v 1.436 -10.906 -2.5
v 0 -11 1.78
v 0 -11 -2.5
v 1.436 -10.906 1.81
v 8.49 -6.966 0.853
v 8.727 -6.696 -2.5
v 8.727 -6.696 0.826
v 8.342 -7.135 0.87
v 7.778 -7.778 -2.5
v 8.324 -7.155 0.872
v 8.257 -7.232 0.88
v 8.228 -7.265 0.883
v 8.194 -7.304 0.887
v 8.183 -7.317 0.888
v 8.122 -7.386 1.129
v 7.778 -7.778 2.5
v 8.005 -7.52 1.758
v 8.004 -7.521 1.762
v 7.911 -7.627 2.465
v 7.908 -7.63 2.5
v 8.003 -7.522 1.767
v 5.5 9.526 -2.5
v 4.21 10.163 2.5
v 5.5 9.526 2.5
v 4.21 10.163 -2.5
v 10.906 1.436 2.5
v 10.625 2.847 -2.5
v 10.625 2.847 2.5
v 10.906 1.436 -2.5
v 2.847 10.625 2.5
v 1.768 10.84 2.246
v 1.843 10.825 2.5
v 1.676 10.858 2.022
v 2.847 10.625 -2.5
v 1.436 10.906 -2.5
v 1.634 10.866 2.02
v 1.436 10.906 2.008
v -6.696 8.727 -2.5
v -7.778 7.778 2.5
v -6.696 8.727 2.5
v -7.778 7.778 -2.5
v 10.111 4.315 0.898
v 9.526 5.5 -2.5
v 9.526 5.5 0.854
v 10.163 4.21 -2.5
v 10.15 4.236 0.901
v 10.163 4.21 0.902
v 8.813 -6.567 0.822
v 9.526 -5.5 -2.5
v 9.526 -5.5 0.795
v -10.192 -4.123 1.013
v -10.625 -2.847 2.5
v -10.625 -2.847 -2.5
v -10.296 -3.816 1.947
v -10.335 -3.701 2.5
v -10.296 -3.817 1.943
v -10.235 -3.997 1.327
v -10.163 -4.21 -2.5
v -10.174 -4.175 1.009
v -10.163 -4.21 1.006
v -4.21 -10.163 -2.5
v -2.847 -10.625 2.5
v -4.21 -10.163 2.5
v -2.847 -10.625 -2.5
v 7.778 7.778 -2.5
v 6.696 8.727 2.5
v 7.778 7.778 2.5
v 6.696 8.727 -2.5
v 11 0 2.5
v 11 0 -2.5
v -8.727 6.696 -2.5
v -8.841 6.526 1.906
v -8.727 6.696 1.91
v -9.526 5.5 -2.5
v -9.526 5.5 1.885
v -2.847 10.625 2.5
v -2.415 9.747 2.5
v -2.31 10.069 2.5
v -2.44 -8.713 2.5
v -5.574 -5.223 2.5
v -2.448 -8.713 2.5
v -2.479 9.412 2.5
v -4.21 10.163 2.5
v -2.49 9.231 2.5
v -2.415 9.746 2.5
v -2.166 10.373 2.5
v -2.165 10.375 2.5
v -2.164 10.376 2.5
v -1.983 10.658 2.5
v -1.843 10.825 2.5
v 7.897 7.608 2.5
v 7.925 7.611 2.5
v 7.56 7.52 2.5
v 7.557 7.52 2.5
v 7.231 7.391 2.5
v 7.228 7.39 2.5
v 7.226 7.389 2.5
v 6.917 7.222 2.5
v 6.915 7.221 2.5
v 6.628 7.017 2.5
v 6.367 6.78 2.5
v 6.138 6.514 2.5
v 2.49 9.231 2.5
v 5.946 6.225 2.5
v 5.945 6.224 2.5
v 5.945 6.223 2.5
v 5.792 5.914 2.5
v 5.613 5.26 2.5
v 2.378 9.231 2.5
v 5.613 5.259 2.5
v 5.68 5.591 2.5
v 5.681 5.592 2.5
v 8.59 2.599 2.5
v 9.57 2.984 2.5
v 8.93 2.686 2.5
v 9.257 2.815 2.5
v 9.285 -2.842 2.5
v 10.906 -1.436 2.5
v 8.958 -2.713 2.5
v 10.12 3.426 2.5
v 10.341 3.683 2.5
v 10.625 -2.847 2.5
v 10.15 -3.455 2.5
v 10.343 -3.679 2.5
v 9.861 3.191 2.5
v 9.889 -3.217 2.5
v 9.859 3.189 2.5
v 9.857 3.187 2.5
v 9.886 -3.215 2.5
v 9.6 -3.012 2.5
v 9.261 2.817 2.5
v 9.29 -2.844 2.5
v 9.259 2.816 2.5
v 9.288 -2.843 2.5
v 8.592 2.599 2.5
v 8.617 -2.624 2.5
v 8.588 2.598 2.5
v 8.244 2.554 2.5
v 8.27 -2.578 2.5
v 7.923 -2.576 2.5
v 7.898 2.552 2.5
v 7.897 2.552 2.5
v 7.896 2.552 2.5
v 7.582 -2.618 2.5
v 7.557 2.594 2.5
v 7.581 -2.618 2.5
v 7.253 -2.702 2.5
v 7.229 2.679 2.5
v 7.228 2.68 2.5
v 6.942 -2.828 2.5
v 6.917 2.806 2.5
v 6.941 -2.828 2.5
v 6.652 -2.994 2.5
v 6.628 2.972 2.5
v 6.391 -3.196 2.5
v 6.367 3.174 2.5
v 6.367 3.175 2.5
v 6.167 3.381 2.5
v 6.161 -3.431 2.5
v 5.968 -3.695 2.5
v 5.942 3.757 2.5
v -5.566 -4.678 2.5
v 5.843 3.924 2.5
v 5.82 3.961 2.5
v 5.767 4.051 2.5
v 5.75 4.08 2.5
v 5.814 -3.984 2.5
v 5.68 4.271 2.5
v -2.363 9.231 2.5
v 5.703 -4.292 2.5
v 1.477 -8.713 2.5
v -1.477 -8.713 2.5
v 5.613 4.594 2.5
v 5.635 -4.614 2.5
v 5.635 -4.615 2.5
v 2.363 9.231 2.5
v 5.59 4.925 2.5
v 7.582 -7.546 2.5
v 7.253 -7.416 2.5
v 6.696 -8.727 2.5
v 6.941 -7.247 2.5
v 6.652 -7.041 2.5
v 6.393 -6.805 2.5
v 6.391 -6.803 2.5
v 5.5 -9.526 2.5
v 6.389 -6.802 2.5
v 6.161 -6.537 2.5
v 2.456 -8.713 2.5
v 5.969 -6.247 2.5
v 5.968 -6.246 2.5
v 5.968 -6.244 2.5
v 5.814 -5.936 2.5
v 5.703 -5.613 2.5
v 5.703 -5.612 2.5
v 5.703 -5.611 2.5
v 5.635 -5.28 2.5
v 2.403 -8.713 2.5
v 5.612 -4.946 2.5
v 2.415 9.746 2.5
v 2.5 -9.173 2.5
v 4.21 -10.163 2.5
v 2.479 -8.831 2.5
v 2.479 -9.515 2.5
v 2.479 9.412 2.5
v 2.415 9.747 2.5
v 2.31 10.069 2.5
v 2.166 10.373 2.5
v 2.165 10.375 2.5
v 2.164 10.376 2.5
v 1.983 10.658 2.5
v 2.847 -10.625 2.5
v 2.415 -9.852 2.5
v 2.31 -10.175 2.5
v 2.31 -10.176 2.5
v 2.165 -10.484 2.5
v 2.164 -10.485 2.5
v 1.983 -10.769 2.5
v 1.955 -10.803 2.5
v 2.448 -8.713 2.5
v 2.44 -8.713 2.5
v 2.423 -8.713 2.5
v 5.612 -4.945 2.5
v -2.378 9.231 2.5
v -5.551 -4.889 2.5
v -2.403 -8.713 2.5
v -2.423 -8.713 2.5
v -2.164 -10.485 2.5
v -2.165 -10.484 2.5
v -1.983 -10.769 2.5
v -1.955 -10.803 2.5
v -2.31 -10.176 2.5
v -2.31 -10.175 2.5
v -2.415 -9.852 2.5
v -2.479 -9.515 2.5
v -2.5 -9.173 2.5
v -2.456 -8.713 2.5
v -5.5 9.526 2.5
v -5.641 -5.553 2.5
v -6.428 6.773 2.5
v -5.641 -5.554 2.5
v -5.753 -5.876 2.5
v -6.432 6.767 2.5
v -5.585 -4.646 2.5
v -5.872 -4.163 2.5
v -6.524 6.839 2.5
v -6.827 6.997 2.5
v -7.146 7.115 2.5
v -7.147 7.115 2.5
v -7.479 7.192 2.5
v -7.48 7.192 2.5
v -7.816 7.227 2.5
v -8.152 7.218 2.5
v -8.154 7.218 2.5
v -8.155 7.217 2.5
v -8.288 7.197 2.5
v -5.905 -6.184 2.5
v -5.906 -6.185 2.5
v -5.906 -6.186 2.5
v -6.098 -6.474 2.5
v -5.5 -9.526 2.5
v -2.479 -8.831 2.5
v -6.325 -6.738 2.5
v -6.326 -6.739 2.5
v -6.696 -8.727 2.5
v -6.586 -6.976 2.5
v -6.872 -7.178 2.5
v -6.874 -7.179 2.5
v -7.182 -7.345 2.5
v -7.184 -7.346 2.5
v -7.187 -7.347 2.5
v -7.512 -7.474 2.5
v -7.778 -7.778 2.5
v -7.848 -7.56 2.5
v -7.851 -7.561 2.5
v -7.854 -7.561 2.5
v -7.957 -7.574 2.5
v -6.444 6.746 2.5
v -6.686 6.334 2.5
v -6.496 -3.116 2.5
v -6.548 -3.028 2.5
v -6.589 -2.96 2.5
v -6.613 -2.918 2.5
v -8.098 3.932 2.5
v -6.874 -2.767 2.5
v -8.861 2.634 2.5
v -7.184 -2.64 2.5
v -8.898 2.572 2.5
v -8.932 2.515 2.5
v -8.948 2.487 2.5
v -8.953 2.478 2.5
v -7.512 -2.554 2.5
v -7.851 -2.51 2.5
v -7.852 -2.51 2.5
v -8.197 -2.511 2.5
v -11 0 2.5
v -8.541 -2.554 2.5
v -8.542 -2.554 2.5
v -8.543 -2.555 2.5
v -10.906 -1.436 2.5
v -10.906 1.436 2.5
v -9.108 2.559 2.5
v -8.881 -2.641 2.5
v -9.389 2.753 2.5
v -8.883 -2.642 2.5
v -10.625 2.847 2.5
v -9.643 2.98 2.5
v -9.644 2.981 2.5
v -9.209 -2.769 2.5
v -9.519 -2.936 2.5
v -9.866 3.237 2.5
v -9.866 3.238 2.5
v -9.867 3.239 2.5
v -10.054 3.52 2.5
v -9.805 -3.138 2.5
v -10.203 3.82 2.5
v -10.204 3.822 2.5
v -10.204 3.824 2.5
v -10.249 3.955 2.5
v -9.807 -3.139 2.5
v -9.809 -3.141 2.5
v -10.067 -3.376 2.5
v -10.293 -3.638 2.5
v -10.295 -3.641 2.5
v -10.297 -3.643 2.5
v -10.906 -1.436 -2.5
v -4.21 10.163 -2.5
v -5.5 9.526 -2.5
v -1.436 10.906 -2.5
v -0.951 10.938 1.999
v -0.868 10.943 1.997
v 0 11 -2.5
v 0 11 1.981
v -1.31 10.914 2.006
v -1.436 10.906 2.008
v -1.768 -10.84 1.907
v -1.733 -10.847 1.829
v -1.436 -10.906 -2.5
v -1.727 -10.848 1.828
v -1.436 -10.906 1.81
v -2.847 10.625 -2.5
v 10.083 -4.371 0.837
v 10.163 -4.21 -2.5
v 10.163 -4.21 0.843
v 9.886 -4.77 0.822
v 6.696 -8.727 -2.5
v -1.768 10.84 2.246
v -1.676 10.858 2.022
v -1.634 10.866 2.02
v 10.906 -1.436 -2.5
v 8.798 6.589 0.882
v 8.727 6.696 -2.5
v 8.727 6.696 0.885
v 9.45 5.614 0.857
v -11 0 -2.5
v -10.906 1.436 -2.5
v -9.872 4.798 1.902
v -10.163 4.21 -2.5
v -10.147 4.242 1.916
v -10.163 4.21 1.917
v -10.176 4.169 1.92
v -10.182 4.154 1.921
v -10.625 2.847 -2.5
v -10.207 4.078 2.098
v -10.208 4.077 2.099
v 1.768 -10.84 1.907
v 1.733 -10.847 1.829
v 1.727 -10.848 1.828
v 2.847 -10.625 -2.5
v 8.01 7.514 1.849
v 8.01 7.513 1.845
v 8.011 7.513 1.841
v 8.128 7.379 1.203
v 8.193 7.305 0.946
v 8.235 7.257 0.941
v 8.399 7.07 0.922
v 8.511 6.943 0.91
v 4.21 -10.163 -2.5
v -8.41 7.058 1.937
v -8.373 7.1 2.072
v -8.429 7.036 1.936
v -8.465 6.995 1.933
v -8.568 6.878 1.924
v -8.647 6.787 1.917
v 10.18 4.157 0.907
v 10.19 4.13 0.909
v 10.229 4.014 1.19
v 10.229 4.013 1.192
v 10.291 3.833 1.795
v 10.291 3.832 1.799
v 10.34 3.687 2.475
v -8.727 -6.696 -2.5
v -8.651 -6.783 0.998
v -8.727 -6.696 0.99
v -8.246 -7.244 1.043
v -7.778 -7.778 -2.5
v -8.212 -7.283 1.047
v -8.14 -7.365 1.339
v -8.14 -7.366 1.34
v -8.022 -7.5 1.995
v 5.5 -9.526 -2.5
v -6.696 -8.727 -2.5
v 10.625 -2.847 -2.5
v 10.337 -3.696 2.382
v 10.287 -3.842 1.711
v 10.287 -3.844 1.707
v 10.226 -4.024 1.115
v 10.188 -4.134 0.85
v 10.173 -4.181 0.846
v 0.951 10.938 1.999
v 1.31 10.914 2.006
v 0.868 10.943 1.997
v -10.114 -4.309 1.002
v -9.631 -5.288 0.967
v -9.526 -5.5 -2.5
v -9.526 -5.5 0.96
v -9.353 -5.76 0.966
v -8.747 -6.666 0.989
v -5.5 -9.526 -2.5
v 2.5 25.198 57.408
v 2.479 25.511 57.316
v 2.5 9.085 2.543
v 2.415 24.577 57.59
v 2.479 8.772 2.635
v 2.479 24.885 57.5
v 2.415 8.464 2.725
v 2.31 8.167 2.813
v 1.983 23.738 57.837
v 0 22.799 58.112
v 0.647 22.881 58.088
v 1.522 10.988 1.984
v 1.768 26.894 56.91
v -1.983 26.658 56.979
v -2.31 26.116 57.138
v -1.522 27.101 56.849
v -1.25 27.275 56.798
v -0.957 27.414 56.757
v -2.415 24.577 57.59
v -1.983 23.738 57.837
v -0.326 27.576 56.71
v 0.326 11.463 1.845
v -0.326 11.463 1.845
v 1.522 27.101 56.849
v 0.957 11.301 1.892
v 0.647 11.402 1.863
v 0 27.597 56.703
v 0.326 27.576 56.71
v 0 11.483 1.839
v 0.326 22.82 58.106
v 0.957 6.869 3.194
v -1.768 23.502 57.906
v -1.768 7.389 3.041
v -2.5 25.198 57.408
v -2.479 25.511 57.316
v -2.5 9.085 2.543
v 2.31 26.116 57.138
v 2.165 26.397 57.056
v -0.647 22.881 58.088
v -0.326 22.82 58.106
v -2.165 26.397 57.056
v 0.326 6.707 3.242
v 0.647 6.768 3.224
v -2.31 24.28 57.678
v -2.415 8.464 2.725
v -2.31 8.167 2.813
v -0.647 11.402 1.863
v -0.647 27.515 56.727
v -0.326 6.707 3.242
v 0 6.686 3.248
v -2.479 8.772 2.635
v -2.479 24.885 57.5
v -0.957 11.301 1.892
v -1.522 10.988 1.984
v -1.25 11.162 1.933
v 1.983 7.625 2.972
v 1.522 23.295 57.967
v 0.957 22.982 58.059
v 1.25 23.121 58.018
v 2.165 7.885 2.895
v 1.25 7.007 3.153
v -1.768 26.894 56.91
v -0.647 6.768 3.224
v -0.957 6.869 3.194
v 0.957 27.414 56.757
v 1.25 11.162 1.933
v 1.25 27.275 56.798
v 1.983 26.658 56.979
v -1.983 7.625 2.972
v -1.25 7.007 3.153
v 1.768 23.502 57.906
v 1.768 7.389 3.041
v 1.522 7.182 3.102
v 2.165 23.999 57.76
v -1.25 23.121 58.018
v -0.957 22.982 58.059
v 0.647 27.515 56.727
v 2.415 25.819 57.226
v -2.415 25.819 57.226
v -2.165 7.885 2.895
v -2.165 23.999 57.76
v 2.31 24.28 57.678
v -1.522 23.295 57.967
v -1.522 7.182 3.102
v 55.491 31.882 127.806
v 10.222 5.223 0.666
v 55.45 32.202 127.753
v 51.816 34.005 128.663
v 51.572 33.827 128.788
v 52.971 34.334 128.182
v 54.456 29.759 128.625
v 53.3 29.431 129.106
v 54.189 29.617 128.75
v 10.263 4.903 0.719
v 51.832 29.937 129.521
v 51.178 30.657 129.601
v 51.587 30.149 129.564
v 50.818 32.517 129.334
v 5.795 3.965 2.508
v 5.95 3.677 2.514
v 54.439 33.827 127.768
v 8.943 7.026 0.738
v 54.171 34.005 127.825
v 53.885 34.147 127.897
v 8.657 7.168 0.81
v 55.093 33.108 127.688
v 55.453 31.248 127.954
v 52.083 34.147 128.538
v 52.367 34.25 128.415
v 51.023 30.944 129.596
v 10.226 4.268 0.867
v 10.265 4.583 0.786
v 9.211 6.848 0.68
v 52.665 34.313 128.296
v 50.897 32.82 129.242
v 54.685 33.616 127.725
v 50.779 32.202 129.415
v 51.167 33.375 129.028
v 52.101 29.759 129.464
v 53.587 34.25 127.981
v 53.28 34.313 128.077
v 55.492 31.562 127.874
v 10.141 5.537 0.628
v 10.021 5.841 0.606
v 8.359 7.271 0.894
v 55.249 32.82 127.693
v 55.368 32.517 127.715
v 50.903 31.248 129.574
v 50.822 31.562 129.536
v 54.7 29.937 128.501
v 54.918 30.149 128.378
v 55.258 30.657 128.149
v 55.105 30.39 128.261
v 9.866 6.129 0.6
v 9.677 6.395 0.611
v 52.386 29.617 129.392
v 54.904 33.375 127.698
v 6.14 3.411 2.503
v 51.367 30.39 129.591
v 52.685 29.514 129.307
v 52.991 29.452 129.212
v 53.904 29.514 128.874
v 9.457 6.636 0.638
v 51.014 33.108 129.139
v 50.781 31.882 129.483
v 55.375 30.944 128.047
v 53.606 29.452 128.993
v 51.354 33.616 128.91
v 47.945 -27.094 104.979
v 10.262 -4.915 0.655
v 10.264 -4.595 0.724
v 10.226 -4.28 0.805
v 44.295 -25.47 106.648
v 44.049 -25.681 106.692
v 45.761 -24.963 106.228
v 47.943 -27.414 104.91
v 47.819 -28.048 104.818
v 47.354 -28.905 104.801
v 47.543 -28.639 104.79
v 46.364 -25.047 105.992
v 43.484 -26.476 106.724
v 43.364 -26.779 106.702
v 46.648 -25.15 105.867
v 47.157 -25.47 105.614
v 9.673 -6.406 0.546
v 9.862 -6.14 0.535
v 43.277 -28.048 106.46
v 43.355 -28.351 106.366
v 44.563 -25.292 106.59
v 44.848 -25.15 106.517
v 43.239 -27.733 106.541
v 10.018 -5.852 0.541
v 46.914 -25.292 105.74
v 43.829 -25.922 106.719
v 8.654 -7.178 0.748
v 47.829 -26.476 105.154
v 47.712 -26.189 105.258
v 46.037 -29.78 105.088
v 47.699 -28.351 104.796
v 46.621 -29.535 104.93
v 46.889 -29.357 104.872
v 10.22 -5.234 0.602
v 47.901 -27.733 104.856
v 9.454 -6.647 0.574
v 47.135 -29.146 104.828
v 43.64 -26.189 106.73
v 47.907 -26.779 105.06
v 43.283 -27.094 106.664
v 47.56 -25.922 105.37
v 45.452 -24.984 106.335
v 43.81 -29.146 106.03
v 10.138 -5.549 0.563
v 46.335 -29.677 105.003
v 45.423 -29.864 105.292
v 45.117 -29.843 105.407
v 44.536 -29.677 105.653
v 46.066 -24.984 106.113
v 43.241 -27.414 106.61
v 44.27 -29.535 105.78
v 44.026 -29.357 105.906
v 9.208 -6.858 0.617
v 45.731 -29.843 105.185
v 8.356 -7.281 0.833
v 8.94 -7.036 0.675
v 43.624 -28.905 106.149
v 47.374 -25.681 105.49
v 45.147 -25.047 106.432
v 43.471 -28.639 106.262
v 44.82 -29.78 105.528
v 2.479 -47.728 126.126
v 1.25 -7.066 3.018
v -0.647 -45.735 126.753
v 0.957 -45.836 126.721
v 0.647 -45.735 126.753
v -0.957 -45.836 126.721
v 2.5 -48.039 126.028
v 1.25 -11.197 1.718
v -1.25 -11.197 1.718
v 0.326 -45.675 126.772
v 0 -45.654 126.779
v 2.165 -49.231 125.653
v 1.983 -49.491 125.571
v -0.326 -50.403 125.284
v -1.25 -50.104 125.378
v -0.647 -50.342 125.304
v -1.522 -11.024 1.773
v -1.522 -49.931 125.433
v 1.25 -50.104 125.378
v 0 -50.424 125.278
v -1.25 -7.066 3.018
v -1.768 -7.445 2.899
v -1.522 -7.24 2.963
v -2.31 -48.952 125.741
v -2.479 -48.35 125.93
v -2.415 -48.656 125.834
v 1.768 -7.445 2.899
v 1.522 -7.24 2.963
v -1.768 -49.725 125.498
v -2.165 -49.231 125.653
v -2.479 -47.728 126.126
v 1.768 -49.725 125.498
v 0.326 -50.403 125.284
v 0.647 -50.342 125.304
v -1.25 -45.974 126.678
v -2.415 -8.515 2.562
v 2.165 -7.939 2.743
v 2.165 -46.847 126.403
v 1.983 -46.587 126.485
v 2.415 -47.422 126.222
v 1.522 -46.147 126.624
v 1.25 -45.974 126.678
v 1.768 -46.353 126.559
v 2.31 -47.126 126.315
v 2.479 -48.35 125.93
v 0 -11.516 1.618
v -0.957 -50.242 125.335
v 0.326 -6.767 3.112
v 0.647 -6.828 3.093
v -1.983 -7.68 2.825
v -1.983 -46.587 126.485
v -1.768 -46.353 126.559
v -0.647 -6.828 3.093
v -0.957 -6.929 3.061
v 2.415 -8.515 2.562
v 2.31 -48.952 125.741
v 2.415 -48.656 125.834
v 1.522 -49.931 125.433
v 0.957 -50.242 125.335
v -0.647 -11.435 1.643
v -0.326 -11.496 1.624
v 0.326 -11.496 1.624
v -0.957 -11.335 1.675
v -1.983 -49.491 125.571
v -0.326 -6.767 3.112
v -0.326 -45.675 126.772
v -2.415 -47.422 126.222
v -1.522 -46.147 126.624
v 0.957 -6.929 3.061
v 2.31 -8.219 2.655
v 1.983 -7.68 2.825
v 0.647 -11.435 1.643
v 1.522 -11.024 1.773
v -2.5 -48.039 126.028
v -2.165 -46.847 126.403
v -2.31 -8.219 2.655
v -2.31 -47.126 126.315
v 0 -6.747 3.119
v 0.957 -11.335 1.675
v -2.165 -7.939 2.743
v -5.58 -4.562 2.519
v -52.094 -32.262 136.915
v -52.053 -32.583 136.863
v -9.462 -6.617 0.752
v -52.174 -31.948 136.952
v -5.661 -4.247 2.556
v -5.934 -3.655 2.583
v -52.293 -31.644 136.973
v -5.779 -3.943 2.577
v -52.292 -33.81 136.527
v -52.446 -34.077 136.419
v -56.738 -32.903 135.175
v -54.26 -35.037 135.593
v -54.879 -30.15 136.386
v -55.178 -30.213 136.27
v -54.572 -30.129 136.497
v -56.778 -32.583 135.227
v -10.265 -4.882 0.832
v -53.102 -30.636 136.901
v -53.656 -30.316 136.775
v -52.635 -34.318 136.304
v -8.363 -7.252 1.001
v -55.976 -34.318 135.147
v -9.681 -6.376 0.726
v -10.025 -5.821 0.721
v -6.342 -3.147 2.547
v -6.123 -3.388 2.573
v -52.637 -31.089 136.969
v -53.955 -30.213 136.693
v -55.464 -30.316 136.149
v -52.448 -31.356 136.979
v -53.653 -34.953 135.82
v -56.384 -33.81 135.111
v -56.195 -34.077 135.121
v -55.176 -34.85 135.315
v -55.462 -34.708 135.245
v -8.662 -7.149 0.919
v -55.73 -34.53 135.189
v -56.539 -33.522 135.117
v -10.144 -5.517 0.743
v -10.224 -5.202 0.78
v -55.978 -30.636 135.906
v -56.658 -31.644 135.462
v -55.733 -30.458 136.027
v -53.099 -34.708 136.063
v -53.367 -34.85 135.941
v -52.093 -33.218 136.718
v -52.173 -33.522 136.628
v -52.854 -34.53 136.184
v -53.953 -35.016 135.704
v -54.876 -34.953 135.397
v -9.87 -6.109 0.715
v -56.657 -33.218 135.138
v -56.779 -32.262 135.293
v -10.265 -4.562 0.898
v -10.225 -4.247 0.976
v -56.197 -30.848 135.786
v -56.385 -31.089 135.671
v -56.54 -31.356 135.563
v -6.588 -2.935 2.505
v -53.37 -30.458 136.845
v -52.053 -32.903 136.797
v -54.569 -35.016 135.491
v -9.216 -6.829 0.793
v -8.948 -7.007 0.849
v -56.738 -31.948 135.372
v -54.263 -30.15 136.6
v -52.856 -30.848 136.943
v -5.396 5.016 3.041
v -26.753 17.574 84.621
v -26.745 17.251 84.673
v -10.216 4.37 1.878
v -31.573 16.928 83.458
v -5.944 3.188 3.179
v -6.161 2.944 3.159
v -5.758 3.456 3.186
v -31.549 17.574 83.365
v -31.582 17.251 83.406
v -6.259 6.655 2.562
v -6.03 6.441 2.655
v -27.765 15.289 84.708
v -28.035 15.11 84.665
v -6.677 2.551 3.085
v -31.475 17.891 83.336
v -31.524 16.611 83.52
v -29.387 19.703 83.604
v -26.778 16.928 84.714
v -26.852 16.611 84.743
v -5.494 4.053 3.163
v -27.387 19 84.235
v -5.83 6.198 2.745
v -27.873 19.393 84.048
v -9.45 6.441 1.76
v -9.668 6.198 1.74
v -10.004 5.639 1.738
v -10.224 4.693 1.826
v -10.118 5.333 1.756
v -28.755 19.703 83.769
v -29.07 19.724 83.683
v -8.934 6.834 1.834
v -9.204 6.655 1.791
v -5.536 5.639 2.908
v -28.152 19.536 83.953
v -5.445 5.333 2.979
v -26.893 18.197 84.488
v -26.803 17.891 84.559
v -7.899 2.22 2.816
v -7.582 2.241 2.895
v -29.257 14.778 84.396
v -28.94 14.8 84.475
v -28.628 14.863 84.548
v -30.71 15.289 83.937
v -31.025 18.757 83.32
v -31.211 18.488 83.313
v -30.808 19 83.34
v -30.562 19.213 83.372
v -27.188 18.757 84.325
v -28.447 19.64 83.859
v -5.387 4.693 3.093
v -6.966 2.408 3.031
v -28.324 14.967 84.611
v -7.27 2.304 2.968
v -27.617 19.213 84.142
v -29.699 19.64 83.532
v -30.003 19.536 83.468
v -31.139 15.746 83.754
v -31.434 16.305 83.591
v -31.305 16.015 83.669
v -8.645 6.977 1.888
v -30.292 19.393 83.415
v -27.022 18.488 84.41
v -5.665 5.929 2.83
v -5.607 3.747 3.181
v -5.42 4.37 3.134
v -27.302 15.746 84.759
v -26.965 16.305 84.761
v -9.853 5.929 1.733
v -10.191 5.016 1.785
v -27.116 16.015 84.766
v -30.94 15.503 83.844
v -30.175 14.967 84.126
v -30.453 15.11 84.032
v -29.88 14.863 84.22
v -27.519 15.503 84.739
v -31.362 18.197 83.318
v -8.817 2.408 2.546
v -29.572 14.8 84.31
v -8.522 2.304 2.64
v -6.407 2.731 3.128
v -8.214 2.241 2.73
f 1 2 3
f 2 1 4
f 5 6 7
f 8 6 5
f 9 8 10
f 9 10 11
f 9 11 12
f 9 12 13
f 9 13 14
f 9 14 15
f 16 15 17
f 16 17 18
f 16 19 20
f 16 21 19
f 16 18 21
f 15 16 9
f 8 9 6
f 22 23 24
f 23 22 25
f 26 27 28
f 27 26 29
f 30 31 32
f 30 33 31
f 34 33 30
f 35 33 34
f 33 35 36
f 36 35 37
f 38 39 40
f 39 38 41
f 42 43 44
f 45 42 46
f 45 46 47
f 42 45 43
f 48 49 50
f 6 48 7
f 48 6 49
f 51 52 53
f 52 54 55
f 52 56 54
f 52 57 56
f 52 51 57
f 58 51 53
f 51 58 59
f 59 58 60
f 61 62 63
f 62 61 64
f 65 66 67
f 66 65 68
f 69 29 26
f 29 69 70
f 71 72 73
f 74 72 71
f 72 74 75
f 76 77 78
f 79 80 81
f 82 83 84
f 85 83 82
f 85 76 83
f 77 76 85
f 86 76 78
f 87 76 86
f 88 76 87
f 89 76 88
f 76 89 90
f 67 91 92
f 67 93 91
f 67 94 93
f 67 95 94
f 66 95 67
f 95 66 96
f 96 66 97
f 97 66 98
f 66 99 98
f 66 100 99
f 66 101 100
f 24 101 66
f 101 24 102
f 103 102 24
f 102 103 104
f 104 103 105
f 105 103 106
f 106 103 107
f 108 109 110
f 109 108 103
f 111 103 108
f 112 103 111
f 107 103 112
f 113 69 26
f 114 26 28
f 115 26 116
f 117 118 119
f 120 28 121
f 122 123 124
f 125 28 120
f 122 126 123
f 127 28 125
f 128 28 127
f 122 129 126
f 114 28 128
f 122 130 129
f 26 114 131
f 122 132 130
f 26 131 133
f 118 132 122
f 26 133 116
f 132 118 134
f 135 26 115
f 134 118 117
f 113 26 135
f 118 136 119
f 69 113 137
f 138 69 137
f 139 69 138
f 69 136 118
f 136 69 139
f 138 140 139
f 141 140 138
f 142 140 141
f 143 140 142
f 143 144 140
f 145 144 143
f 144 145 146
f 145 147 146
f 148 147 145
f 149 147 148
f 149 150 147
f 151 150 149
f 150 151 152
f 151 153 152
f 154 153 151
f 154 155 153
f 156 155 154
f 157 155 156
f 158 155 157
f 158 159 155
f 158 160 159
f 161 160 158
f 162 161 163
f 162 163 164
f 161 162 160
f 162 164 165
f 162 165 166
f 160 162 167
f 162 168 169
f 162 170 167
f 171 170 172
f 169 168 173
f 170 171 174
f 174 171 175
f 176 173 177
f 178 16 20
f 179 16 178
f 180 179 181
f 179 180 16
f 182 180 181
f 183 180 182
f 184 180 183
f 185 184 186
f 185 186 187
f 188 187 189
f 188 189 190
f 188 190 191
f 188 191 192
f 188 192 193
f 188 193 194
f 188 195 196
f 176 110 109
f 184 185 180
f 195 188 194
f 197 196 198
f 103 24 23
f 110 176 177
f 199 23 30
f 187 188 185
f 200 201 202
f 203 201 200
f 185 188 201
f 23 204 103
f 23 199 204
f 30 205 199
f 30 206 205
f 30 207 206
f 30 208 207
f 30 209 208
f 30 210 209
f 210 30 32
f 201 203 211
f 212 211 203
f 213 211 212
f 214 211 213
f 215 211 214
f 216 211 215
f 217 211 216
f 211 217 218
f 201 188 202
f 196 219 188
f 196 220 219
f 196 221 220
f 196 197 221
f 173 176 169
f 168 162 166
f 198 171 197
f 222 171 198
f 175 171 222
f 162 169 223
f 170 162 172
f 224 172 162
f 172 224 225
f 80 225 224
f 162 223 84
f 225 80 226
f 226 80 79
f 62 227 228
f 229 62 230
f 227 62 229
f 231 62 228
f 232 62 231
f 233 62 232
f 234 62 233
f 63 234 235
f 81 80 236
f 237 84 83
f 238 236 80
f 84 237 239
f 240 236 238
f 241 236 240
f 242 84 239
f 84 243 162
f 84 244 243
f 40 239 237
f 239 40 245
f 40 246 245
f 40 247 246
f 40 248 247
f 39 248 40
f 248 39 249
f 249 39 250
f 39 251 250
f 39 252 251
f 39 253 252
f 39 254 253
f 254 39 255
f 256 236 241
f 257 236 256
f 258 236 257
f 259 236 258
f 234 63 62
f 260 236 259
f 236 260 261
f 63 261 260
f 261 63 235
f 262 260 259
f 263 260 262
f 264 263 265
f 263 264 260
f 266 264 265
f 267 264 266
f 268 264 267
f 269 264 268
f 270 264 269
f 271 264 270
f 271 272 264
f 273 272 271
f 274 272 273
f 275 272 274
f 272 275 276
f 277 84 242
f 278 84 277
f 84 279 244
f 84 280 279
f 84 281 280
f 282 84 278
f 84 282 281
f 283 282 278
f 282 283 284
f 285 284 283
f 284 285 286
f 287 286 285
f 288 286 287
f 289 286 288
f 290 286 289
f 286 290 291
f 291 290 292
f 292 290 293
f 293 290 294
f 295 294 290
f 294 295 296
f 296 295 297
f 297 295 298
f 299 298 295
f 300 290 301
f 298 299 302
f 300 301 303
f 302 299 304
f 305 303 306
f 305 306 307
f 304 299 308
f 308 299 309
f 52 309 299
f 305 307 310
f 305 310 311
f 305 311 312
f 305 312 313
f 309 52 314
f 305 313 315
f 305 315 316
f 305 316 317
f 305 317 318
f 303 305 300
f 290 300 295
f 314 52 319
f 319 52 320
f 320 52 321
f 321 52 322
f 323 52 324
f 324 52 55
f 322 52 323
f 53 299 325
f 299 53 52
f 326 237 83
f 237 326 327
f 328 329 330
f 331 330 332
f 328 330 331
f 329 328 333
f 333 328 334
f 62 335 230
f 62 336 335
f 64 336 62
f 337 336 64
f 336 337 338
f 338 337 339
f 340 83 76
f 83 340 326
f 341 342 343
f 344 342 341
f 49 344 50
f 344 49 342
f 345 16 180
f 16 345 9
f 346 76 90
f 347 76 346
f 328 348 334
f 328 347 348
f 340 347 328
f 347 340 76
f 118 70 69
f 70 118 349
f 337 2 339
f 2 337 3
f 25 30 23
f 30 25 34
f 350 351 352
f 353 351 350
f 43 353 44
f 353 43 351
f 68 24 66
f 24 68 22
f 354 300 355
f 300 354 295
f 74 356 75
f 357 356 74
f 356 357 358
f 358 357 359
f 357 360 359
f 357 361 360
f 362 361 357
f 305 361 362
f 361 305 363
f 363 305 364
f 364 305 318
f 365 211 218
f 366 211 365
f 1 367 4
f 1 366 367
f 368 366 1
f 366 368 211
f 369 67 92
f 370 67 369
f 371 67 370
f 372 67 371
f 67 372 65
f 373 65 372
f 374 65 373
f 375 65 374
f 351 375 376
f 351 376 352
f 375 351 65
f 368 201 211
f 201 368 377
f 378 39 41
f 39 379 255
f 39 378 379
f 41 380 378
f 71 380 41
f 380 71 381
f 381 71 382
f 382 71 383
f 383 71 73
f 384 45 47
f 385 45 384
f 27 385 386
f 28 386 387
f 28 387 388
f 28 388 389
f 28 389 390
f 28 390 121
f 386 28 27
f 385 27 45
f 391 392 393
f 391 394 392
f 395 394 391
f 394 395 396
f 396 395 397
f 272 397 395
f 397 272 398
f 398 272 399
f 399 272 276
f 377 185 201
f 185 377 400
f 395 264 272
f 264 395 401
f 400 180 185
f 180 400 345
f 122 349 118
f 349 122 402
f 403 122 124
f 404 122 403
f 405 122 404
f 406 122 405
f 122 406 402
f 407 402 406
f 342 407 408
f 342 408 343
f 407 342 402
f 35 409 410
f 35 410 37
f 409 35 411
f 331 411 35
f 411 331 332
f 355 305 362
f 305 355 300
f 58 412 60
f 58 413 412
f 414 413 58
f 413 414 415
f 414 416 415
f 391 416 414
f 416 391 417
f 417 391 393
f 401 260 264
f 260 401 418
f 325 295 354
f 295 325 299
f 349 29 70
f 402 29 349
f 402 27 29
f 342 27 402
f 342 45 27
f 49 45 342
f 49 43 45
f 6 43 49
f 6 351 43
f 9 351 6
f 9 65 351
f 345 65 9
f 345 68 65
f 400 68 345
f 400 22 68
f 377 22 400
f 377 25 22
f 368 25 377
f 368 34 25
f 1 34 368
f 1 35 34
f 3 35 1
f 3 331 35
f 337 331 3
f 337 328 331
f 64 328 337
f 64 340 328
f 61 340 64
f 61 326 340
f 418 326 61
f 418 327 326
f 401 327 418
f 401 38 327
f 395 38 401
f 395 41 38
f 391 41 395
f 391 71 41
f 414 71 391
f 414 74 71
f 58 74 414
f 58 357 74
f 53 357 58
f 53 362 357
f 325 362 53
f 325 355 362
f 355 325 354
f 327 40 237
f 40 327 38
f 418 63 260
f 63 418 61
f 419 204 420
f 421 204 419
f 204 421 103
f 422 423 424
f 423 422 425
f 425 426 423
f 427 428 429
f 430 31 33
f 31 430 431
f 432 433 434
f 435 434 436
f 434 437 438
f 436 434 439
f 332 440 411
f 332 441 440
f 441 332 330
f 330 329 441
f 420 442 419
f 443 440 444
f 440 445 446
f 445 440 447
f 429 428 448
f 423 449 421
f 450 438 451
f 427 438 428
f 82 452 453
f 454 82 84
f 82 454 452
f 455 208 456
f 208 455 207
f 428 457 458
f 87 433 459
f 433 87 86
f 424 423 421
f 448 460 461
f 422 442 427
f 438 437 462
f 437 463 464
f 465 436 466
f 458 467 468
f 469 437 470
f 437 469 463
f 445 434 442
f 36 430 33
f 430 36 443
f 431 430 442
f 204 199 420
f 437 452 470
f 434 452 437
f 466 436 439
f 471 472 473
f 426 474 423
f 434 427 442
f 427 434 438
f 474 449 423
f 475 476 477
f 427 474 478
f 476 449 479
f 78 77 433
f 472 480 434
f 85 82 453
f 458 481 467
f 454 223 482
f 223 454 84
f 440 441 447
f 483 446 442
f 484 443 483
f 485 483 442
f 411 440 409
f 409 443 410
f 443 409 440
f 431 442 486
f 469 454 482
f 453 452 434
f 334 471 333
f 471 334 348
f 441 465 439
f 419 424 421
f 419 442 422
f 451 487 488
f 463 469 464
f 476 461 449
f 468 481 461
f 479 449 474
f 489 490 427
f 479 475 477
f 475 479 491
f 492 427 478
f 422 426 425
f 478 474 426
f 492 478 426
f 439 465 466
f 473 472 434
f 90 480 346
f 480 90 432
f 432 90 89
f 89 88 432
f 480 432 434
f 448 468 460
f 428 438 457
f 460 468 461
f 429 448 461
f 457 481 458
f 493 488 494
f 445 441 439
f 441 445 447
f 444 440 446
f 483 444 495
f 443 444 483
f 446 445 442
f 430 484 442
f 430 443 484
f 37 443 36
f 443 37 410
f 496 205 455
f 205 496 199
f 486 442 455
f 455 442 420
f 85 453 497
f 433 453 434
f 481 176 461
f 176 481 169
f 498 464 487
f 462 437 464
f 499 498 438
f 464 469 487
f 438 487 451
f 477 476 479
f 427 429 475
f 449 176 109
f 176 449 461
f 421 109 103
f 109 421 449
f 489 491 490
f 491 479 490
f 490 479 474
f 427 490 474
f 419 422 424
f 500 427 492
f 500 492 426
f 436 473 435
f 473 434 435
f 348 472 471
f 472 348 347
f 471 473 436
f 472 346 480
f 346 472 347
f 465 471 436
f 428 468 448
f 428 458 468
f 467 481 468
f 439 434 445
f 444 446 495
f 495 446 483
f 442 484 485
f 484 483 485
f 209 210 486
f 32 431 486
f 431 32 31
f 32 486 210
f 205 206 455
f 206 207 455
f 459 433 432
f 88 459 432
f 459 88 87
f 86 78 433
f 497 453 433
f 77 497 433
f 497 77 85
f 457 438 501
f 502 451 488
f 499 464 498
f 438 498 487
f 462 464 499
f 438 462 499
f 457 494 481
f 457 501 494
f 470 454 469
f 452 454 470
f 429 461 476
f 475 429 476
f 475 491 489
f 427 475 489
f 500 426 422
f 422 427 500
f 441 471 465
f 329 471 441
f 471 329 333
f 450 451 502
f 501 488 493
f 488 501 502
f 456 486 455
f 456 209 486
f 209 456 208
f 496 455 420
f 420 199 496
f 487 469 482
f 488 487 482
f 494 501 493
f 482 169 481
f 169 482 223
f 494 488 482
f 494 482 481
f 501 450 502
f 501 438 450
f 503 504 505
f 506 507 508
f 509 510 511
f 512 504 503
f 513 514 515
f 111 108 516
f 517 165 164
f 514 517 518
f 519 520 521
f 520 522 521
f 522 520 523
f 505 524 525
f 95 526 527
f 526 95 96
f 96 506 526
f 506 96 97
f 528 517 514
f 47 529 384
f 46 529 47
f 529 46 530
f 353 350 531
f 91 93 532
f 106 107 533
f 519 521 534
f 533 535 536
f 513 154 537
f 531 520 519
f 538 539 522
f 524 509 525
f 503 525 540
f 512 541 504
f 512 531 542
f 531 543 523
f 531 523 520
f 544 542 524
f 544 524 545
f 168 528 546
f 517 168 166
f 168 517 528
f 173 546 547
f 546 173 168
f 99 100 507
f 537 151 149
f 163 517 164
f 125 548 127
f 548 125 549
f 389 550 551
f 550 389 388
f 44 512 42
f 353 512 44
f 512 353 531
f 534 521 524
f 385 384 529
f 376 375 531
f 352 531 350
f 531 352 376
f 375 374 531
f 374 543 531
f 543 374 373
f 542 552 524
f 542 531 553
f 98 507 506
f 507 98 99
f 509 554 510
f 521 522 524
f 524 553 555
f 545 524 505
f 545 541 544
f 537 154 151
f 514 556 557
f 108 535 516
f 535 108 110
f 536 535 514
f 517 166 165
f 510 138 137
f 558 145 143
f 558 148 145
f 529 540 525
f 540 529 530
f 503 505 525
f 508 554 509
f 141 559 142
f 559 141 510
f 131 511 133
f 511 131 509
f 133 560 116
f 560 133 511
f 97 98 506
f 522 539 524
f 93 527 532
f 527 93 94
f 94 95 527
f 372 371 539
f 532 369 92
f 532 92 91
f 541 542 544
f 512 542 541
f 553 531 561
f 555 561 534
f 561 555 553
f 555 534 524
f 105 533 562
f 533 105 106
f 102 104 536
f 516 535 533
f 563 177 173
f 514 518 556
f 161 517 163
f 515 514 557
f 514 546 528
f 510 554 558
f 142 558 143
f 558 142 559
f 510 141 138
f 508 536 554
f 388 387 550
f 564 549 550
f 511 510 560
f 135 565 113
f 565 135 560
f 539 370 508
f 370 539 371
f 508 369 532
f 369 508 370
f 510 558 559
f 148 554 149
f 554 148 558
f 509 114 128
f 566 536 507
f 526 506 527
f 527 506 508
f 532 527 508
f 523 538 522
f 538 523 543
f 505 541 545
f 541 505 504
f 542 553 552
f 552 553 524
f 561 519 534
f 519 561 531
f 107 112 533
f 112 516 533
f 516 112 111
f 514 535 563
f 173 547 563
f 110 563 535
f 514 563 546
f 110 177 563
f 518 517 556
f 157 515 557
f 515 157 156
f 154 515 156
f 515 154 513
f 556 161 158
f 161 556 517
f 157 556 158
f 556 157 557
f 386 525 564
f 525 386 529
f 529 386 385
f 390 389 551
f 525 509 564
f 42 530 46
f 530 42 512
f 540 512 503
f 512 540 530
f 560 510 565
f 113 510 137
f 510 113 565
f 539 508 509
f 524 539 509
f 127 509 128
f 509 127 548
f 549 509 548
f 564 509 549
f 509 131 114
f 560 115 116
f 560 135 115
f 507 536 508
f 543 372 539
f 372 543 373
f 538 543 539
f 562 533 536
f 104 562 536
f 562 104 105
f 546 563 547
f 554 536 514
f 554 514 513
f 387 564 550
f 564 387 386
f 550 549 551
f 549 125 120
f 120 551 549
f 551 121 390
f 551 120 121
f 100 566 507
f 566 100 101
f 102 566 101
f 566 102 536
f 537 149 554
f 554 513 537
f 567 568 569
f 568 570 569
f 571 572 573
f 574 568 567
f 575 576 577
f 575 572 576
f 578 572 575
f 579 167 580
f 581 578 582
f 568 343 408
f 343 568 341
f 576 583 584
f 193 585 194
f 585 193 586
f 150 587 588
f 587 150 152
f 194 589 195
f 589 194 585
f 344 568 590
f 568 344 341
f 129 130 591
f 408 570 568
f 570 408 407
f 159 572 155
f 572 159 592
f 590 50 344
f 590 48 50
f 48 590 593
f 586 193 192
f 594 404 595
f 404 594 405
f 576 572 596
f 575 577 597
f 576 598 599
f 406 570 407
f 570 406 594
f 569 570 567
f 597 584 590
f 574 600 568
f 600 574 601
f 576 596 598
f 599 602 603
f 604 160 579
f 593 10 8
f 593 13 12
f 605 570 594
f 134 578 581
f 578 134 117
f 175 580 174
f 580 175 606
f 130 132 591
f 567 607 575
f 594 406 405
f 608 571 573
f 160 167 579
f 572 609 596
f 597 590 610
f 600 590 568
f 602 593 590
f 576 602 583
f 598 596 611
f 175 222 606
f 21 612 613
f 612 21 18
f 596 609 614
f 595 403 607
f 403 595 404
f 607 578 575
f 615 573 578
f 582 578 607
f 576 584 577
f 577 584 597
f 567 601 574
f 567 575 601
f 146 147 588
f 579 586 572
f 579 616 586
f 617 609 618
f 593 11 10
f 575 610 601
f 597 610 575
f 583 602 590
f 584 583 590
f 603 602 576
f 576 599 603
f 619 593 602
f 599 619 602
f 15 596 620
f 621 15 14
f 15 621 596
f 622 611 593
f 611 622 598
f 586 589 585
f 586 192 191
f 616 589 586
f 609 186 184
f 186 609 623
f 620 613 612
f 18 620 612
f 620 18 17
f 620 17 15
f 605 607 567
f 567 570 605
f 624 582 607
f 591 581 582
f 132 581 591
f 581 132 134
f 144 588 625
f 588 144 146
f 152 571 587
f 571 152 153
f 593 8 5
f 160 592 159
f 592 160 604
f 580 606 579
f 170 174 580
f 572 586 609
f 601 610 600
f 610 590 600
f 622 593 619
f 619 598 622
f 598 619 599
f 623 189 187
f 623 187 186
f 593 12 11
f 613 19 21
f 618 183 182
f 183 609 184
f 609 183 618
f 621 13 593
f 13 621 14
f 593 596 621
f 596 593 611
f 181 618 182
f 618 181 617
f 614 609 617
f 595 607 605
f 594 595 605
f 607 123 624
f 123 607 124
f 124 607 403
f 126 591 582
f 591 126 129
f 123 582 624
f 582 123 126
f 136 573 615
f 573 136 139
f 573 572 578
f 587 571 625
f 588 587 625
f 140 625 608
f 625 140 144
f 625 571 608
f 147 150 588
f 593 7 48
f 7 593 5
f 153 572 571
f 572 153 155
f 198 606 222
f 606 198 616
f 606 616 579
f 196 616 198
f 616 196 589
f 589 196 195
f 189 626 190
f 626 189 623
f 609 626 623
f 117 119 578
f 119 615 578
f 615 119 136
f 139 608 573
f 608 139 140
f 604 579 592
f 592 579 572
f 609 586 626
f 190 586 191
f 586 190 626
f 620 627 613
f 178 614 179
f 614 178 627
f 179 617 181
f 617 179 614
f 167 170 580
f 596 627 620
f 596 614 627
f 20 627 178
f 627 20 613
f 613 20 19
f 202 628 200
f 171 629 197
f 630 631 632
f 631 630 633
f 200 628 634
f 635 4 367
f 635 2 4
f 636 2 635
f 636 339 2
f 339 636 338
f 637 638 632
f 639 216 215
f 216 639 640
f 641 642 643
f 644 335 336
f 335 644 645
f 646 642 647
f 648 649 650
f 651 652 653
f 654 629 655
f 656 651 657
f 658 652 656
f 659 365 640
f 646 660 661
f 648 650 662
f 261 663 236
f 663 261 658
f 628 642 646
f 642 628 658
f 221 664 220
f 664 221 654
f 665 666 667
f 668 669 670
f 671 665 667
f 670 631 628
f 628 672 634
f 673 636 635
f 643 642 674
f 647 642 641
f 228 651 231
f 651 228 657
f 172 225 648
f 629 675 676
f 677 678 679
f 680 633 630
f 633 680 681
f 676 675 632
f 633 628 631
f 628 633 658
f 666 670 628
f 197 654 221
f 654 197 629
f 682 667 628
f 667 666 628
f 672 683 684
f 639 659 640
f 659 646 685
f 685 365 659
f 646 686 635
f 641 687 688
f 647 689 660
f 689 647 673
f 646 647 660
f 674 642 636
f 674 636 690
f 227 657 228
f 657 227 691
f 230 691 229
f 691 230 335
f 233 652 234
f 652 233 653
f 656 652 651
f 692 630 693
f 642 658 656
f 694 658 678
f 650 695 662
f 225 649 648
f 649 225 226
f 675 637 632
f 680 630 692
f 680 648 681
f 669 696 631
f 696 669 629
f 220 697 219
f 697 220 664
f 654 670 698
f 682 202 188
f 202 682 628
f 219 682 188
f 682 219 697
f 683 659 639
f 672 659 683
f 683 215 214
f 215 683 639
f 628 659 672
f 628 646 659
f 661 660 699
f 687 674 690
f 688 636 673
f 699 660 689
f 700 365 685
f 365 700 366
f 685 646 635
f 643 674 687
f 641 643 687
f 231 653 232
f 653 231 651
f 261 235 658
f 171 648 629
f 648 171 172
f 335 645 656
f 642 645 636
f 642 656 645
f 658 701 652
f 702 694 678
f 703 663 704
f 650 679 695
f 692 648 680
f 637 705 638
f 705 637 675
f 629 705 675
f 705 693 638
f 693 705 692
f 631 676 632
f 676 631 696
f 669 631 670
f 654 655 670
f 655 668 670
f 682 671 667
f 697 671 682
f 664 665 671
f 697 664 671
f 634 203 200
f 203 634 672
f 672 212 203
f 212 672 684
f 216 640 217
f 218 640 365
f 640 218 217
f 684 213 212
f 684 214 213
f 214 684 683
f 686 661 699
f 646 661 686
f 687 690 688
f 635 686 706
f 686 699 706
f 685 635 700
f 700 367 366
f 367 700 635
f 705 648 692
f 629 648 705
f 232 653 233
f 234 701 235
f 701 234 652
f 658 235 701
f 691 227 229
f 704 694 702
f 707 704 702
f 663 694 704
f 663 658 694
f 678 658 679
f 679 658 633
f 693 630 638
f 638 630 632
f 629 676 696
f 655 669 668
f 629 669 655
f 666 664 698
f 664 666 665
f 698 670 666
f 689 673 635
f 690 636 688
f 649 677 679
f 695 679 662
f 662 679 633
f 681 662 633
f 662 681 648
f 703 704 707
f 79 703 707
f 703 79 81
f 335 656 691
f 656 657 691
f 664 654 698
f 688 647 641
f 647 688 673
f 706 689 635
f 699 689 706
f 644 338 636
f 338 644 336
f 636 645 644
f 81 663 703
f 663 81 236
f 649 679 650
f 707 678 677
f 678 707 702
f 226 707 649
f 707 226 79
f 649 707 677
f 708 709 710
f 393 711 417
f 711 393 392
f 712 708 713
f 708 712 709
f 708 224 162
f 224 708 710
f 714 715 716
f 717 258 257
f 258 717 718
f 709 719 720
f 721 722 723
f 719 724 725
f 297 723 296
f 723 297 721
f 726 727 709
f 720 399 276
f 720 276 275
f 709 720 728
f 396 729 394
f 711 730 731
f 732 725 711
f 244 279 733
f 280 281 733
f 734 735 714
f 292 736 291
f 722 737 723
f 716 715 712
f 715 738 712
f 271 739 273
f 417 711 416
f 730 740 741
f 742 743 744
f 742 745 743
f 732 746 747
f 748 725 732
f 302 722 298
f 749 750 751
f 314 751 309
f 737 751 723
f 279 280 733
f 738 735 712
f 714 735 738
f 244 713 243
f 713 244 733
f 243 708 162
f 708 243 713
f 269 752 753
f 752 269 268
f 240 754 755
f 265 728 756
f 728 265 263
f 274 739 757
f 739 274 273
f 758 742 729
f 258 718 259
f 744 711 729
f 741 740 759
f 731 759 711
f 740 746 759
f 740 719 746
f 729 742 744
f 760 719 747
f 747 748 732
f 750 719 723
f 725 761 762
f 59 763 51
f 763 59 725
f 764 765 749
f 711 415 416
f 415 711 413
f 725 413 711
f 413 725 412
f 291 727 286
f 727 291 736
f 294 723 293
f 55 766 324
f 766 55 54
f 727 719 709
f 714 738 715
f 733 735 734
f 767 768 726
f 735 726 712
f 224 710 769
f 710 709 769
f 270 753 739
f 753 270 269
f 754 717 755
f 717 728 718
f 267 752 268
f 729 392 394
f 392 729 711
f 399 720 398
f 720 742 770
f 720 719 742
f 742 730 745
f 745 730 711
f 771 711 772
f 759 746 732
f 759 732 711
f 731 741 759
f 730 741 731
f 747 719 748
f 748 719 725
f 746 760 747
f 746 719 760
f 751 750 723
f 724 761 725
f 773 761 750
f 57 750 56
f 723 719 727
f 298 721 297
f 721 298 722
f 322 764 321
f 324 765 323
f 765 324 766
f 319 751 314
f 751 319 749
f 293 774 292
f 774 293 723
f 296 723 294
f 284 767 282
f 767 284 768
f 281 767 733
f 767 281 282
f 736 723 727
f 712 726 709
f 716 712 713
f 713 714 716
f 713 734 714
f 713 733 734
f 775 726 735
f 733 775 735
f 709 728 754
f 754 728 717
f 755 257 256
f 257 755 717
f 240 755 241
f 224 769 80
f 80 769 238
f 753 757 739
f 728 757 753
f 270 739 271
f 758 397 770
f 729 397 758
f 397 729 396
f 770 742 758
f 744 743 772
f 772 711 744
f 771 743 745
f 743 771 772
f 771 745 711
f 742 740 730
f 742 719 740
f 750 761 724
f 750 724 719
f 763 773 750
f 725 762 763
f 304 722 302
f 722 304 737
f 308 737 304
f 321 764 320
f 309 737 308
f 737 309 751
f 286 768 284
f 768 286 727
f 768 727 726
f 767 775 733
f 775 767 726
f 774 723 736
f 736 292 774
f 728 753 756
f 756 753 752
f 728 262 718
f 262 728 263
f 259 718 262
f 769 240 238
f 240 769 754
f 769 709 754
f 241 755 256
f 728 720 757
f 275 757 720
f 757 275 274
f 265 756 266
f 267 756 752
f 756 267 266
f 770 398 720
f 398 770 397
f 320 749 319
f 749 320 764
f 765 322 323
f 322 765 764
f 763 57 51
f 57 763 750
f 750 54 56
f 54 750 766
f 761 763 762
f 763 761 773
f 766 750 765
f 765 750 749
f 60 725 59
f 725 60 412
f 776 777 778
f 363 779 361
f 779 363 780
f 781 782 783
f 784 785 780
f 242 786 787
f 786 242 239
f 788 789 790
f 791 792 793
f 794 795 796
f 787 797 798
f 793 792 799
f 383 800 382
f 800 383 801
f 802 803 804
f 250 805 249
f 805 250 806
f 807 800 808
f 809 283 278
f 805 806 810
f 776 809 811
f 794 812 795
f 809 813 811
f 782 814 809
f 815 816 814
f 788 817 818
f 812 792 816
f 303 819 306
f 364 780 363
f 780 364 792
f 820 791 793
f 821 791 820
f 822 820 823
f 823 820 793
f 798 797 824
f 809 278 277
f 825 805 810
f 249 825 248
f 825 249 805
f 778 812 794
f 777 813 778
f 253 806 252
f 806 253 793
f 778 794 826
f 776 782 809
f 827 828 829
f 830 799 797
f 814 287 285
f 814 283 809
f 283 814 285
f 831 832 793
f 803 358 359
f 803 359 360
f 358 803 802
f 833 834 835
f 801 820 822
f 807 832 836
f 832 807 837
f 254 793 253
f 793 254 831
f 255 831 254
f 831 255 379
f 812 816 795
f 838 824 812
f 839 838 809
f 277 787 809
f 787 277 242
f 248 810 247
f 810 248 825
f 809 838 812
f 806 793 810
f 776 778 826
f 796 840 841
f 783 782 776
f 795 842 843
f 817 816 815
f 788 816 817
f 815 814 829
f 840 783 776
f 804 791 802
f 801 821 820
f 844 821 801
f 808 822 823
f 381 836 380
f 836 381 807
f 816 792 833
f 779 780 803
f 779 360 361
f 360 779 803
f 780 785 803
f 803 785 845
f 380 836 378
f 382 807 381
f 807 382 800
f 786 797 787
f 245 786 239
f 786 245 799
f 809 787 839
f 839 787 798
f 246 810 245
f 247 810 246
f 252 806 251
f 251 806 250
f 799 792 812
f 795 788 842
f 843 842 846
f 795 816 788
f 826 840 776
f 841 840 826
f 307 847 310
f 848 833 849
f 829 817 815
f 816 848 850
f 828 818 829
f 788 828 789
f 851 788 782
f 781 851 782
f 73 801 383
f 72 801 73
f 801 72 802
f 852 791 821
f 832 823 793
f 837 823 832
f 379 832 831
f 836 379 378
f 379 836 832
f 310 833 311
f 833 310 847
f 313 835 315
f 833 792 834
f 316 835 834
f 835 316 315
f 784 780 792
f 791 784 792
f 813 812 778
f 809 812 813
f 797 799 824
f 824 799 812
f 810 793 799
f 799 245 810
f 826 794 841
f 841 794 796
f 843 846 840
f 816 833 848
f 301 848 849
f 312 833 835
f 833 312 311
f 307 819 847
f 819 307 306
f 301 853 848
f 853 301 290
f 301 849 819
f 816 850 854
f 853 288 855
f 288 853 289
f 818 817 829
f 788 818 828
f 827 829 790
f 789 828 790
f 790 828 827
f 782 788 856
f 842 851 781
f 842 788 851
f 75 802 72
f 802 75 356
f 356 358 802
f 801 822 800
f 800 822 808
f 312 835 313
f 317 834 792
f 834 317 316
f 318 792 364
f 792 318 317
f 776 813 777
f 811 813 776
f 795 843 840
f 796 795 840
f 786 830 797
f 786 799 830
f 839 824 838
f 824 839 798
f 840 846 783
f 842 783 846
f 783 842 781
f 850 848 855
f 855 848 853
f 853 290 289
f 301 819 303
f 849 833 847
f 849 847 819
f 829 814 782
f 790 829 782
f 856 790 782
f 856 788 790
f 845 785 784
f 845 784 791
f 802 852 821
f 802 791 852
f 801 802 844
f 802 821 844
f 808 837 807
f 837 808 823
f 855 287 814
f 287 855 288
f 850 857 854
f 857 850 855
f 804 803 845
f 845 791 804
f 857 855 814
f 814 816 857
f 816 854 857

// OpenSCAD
// Generated by SolidPython 1.1.3 on 2024-06-04 12:18:26
$fn = 48;


union() {
	scale(v = [10, 10, 10]) {
		union() {
			union() {
				union() {
					union() {
						union() {
							union() {
								cylinder(center = true, h = 0.5000000000, r = 1.1000000000);
								rotate(a = [-16.36697713766391, 0.0, 0.0000000000]) {
									translate(v = [0.0, 0.8, 3.3591048121]) {
										cylinder(center = true, h = 5.7182096242, r = 0.2500000000);
									}
								}
							}
							rotate(a = [-11.310087030161858, 19.589645374266127, 0.0000000000]) {
								translate(v = [0.6928203230275509, 0.40000000000000013, 7.3783371857]) {
									cylinder(center = true, h = 13.7566743714, r = 0.2500000000);
								}
							}
						}
						rotate(a = [11.47277605471023, 19.87143103061774, 0.0000000000]) {
							translate(v = [0.692820323027551, -0.3999999999999999, 6.1557787875]) {
								cylinder(center = true, h = 11.3115575750, r = 0.2500000000);
							}
						}
					}
					rotate(a = [17.465151060324665, 2.13886413426516e-15, 0.0000000000]) {
						translate(v = [9.797174393178826e-17, -0.8, 6.9817859347]) {
							cylinder(center = true, h = 12.9635718694, r = 0.2500000000);
						}
					}
				}
				rotate(a = [11.021898729535884, -19.090488595434987, 0.0000000000]) {
					translate(v = [-0.6928203230275507, -0.40000000000000036, 7.7444956393]) {
						cylinder(center = true, h = 14.4889912787, r = 0.2500000000);
					}
				}
			}
			rotate(a = [-8.470250990232257, -14.670905067942888, 0.0000000000]) {
				translate(v = [-0.6928203230275513, 0.39999999999999947, 4.7629732730]) {
					cylinder(center = true, h = 8.5259465460, r = 0.2500000000);
				}
			}
		}
	}
}
/***********************************************
*********      SolidPython code:      **********
************************************************
 
#! /usr/bin/env python3
import sys
import numpy as np
from solid import scad_render_to_file, difference
from solid.objects import cube, translate, union, rotate, cylinder, scale


SEGMENTS = 48
ball_count = 6

def basic_geometry():

    shapes = []
    base = cylinder(r=1.1, h=.5, center=True)
    
    step = np.pi*2/ball_count
    for i in range(ball_count):
        length = 5. + np.random.random() * 10.
        inclination = 15. + np.random.random() * 10.
        bar = cylinder(r=.25, h=length, center=True)
        bar = translate([np.sin(i*step)*.8, np.cos(i*step)*.8, length*.5+.5])(bar)
        bar = rotate([-np.cos(i*step)*inclination, np.sin(i*step)*inclination, 0.])(bar)
        base = union()(base, bar)

    base = scale([10, 10, 10])(base)
    shapes.append(base)
    return union()(*shapes)

if __name__ == '__main__':
    out_dir = sys.argv[1] if len(sys.argv) > 1 else None

    a = basic_geometry()

    # Adding the file_header argument as shown allows you to change
    # the detail of arcs by changing the SEGMENTS variable.  This can
    # be expensive when making lots of small curves, but is otherwise
    # useful.
    file_out = scad_render_to_file(a, out_dir=out_dir, file_header=f'$fn = {SEGMENTS};')
    print(f"{__file__}: SCAD file written to: \n{file_out}")
 
 
************************************************/
